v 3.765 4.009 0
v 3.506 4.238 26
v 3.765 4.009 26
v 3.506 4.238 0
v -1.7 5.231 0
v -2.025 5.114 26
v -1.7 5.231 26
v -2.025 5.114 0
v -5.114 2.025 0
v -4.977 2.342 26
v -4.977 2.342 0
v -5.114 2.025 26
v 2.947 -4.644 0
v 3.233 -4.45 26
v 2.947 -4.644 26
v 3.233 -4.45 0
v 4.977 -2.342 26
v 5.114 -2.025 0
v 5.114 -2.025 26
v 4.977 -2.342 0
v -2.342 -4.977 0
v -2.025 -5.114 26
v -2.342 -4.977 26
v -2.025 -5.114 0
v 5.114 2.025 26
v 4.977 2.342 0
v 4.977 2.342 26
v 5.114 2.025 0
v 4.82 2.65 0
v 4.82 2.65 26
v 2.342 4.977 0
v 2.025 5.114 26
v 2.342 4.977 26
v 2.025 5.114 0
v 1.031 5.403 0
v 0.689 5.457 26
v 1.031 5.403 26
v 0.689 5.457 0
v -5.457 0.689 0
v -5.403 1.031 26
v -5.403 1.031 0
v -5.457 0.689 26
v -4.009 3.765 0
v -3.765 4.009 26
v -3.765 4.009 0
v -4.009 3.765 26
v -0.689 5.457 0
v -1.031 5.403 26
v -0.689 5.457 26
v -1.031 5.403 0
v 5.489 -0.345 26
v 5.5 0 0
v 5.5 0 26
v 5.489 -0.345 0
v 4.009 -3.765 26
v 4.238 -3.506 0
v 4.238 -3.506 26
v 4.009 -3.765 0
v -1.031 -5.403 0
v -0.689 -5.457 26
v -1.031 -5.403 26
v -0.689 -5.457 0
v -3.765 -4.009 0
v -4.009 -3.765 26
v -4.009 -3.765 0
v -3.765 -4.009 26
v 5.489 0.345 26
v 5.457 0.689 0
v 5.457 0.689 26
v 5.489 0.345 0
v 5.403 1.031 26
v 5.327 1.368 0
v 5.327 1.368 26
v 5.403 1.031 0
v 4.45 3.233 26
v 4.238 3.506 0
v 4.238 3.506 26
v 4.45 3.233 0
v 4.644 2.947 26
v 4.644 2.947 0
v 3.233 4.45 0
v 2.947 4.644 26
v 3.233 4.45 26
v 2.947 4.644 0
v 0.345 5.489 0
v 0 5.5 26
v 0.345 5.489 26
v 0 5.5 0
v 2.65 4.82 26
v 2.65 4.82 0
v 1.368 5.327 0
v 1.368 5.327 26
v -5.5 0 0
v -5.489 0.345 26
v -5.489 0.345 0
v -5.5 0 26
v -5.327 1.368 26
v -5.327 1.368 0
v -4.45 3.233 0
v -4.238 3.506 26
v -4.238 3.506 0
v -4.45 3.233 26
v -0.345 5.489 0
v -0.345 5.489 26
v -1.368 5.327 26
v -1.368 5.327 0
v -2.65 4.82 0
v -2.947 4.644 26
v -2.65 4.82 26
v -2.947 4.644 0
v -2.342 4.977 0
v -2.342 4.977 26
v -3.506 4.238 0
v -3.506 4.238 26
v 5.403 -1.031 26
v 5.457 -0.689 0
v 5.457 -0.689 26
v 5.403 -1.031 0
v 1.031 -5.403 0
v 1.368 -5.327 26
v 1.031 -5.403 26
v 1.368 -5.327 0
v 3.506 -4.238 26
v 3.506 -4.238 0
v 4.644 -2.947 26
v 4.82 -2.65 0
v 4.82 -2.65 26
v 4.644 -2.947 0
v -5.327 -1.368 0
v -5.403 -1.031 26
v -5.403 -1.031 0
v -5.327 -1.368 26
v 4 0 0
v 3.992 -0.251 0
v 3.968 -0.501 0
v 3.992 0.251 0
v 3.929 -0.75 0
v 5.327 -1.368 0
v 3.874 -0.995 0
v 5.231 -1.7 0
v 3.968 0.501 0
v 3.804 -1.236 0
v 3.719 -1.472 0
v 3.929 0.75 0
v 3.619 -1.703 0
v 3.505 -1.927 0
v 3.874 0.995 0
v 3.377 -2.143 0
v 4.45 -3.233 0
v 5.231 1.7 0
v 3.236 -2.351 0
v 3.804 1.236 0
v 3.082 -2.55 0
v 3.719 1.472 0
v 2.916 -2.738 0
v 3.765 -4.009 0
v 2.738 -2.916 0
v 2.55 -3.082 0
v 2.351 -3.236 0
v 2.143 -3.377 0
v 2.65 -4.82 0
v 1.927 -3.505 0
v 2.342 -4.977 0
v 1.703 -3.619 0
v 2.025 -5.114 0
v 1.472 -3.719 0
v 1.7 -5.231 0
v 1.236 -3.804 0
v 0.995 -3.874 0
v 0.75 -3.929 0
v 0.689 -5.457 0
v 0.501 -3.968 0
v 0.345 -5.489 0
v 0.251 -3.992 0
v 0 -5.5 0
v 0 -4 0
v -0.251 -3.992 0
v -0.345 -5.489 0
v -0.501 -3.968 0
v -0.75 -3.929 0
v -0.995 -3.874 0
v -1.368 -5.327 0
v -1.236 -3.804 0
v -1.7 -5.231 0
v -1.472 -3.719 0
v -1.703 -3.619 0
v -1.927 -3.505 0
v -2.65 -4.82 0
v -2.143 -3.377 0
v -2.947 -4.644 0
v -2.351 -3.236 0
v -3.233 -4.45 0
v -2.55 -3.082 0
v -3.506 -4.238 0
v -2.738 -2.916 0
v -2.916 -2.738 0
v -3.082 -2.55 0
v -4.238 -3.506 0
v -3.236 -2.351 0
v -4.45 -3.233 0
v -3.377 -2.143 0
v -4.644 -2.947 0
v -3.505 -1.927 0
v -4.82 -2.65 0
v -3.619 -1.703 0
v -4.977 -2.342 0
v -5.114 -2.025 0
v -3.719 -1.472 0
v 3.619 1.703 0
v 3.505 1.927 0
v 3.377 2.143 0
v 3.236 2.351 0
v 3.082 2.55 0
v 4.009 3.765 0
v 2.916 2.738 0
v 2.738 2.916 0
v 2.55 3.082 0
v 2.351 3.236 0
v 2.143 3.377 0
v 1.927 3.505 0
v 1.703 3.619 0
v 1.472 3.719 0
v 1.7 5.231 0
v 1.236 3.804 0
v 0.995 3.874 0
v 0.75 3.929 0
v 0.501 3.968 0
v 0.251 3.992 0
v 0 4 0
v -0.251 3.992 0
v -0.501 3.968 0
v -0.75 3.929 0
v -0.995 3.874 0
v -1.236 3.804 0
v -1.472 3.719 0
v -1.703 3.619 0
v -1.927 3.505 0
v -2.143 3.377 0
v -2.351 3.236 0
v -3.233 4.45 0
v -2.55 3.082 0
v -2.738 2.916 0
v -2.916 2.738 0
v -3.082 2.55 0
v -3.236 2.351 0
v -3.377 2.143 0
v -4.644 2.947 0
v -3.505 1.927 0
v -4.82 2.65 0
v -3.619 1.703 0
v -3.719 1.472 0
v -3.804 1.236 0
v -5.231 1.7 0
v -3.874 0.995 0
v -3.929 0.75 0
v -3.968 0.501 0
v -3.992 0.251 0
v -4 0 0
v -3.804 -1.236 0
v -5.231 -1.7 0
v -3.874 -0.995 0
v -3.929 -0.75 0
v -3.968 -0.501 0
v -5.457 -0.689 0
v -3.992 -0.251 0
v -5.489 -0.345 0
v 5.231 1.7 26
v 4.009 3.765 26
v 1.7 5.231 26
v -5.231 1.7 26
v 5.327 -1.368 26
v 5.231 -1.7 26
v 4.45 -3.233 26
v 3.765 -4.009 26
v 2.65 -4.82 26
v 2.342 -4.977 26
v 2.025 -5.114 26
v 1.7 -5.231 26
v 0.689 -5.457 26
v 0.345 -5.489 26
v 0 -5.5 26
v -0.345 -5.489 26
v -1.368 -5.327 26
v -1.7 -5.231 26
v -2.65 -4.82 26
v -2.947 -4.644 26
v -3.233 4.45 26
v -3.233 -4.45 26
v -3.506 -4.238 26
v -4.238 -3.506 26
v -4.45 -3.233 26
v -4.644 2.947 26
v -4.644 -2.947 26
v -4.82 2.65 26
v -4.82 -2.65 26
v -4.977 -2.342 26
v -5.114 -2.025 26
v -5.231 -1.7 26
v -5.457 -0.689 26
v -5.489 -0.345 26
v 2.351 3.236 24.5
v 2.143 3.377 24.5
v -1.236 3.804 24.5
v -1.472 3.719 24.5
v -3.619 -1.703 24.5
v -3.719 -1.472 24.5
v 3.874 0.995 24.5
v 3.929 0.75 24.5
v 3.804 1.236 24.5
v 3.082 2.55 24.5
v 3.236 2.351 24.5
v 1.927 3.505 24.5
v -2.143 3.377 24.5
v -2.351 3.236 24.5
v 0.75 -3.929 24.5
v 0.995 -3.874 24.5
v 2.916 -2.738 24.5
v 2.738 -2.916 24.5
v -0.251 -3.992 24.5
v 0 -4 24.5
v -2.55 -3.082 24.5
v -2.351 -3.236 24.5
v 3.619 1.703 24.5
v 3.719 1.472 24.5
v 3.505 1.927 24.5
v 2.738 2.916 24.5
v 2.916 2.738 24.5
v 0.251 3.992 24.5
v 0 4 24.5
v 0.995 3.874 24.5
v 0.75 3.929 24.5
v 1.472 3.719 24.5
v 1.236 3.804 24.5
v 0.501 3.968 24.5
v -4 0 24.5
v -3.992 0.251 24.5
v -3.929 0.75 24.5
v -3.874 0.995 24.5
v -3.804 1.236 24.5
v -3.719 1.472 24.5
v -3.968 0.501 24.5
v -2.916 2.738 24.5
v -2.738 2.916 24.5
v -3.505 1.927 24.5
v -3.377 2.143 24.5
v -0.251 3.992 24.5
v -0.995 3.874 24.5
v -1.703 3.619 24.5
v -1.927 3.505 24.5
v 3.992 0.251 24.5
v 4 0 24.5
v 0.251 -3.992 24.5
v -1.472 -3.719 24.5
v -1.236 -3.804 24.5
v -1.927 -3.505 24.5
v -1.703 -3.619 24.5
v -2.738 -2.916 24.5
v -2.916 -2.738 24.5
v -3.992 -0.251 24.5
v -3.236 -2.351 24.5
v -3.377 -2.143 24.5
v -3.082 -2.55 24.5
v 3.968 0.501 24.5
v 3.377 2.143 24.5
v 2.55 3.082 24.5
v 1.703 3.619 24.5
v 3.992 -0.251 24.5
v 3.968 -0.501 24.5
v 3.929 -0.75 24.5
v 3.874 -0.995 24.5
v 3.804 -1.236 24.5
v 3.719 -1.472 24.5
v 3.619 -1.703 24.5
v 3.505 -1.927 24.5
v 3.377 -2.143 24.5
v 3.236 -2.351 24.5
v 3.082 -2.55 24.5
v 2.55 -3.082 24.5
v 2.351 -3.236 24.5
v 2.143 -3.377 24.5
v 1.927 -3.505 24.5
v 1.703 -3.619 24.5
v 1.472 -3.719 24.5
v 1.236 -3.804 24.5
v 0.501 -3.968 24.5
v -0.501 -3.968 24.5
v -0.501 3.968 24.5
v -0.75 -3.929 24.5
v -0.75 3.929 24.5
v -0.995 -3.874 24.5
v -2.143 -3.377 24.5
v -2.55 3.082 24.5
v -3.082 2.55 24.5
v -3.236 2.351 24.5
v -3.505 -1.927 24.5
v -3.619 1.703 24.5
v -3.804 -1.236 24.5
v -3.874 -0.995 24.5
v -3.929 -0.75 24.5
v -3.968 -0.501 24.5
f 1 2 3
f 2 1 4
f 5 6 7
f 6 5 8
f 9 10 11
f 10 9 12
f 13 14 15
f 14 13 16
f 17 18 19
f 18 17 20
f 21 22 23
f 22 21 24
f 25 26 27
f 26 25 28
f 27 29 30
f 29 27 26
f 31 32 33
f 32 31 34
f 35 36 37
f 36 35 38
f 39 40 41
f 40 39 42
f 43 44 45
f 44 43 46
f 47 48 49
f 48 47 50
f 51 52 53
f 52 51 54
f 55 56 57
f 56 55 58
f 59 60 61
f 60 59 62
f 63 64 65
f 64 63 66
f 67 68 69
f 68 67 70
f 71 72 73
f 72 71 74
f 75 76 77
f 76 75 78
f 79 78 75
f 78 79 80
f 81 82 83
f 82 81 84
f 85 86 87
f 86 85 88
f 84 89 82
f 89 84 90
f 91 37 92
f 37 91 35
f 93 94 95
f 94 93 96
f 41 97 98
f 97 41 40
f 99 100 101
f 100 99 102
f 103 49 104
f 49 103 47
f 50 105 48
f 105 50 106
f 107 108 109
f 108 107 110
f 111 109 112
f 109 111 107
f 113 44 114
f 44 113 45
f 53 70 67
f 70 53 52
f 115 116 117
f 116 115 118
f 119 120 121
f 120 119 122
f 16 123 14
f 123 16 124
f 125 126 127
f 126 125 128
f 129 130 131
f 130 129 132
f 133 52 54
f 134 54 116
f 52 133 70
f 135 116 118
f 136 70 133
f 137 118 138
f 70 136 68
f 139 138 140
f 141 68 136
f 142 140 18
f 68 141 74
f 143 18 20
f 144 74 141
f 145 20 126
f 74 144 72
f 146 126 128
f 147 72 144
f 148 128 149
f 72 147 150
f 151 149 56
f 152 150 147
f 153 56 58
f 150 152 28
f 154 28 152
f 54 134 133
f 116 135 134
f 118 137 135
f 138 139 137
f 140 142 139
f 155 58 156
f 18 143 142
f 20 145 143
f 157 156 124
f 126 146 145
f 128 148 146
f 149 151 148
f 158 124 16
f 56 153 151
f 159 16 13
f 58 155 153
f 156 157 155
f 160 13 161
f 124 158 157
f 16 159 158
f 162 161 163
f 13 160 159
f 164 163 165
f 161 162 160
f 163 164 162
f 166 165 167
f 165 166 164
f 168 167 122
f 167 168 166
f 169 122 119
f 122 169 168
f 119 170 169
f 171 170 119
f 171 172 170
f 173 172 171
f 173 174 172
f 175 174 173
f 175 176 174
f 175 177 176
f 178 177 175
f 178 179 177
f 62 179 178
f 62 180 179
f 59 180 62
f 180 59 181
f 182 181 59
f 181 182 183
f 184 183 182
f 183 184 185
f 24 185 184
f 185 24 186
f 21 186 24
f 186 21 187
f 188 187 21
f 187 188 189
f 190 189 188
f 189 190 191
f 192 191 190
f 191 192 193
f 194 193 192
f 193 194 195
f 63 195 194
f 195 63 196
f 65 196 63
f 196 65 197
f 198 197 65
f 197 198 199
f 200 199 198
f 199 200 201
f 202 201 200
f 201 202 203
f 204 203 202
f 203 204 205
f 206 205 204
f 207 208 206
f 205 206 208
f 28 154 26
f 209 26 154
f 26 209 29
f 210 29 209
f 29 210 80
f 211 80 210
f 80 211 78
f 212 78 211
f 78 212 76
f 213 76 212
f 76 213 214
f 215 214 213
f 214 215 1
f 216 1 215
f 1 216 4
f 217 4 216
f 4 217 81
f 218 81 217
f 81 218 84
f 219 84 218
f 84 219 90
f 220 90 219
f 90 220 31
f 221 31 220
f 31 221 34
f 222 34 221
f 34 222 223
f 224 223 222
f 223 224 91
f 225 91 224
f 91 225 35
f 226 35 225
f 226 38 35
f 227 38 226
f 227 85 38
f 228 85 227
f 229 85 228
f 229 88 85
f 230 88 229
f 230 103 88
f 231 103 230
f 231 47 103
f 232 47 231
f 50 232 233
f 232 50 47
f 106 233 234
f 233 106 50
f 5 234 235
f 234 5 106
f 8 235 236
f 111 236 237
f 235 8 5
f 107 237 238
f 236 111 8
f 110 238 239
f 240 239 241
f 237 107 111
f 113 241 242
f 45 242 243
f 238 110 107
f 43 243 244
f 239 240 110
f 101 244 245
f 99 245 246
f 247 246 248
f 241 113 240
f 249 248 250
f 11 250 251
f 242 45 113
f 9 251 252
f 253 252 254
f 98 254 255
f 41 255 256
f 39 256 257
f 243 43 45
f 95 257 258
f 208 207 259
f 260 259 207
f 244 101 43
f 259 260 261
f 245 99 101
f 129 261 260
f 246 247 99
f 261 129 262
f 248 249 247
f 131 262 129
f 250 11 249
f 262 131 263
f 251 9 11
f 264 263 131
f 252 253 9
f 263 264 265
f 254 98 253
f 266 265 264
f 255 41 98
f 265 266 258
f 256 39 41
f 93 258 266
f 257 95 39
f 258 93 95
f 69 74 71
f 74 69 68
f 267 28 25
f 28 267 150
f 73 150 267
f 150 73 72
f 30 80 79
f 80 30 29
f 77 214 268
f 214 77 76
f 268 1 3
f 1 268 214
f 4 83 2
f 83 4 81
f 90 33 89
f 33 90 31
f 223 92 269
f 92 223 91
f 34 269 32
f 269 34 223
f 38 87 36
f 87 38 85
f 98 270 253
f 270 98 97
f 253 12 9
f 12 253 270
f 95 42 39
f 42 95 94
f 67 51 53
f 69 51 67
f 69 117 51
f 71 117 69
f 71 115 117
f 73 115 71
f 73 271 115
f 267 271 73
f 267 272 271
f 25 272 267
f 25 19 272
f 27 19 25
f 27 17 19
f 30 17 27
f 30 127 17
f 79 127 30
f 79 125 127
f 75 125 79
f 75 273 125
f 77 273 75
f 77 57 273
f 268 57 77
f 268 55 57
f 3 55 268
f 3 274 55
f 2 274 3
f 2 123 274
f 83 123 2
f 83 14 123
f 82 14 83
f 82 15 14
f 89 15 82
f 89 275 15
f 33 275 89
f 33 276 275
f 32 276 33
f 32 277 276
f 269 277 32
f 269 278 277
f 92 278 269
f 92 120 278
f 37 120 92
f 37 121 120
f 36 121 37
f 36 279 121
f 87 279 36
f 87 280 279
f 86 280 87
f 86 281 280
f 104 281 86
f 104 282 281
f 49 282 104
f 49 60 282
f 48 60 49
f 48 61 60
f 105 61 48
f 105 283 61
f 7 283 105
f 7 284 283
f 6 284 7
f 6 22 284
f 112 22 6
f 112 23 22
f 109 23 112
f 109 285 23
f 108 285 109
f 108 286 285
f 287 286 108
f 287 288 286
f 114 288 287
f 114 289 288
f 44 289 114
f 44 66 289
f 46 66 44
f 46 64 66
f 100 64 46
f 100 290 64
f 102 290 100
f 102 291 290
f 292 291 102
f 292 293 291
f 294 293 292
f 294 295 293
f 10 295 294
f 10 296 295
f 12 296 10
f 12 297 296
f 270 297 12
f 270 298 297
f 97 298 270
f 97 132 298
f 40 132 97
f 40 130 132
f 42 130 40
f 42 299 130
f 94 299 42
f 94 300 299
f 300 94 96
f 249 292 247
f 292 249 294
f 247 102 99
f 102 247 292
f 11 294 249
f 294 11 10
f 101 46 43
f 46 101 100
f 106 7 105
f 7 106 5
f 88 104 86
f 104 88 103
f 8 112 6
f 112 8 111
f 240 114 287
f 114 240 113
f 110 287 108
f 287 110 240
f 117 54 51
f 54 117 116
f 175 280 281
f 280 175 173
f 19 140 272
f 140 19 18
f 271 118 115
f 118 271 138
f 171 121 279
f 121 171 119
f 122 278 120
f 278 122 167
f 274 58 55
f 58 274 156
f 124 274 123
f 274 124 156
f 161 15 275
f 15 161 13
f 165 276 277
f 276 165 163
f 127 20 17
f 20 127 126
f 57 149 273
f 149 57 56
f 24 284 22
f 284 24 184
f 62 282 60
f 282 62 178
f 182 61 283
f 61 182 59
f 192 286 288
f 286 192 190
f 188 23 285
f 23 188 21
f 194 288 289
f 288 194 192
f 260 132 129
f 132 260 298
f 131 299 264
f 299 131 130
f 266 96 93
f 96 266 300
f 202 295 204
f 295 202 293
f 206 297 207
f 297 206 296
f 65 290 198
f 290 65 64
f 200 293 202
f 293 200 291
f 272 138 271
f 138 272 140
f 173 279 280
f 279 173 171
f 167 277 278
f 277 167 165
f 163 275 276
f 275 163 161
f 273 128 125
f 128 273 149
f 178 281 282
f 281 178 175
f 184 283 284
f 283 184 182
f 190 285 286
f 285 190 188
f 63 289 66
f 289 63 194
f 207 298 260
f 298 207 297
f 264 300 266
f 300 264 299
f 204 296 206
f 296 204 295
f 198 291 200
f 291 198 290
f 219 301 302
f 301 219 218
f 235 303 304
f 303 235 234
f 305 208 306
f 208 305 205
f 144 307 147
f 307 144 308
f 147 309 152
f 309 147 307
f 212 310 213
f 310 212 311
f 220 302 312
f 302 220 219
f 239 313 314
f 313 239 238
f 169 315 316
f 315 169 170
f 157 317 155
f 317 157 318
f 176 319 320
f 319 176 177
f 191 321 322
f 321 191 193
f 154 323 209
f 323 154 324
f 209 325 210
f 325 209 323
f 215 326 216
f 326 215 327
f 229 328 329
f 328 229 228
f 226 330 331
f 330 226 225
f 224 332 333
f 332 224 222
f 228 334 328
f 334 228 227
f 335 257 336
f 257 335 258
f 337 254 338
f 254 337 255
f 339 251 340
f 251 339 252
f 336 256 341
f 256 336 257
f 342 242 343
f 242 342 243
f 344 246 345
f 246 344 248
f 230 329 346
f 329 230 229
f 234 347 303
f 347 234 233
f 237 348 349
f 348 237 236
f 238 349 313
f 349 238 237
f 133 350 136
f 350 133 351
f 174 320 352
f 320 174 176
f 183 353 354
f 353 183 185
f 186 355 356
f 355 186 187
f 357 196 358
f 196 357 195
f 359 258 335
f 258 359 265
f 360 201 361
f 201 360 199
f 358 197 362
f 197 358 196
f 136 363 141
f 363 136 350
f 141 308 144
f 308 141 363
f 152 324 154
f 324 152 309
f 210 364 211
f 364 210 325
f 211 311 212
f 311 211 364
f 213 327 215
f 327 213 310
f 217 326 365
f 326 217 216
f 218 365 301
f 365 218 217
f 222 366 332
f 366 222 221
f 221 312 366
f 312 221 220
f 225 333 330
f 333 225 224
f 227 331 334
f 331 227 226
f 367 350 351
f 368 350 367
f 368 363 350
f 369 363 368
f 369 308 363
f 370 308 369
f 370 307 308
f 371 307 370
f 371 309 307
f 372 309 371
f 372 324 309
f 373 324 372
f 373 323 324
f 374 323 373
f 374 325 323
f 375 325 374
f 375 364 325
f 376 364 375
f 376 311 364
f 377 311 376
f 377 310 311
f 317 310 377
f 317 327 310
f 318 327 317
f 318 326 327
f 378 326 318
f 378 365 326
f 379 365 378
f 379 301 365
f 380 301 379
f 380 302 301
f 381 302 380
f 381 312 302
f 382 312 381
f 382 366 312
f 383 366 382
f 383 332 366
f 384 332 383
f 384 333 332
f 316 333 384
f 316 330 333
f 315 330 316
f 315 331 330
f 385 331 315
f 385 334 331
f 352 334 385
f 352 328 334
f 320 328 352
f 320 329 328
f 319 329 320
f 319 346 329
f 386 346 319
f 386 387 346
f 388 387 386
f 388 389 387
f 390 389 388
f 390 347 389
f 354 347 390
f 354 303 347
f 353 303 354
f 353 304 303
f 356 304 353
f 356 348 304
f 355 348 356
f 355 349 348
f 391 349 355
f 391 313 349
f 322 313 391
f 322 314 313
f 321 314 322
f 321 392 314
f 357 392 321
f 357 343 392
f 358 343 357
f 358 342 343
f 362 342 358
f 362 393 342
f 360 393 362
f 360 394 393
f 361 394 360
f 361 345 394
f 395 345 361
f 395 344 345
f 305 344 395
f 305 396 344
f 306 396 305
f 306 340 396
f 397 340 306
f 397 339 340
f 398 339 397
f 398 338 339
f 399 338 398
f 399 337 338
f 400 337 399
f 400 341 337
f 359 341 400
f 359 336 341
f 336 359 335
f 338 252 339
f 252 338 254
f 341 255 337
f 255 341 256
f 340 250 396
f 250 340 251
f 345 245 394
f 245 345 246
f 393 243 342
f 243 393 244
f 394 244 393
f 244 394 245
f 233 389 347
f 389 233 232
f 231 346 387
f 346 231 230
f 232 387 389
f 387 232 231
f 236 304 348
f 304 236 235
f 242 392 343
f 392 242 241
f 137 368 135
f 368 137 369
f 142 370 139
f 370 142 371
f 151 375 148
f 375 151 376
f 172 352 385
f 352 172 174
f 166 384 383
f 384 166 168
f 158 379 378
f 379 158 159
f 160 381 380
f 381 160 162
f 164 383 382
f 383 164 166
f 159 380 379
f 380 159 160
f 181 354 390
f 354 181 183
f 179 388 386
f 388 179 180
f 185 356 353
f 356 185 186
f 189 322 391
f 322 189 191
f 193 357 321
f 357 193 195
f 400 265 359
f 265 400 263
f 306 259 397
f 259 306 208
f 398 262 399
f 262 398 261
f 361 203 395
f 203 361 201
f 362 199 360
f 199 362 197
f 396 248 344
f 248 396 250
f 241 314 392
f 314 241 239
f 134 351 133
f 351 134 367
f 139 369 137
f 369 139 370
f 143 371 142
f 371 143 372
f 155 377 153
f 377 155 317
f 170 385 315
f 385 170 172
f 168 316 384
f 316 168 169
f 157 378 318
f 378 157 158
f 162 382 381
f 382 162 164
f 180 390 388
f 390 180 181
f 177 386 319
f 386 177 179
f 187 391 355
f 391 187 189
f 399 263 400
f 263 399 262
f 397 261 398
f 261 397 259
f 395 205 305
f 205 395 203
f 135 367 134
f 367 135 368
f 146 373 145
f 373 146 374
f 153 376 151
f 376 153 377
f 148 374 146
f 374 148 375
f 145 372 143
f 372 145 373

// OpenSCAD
// file: ../motor_housing.scad
/*
Title:          motor_housing.scad
Description:    encapsulation for the motors
Authors:        Pau Roura (@proura)
Date:           20180610
Version:        0.1
Notes:

    Default values for module motor_housing

    module motor_housing(
        w_walls=1.5,        //with of the walls
        d_motor=7.2,        //motor diameter
        h_motor_body=26,    //motor housing height
        d_motor_shaft=1     //motor shaft diameter
    )
*/

module motor_housing(w_walls=1.5, d_motor=7.2, h_motor_body=26, d_motor_shaft=1){
    difference() {
                            cylinder(d=d_motor+w_walls*2, h=h_motor_body); 
        translate([0,0,-1]) cylinder(d=d_motor, h=h_motor_body-w_walls+1);
        translate([0,0,1])  cylinder(d=d_motor_shaft, h=h_motor_body);
    }     
}

motor_housing();
// main file
/*
Title:          motor_housing.scad for generate STL file
Description:    encapsulation for the motors
Authors:        Pau Roura (@proura)
Date:           20180610
Version:        0.1
Notes:

    Default values for module motor_housing

    module motor_housing(
        w_walls=1.5,        //with of the walls
        d_motor=7.2,        //motor diameter
        h_motor_body=26,    //motor housing height
        d_motor_shaft=1     //motor shaft diameter
    )
*/

use <../motor_housing.scad>;
$fn = 100;
motor_housing(w_walls=1.5, d_motor=8, h_motor_body=26, d_motor_shaft=0);
